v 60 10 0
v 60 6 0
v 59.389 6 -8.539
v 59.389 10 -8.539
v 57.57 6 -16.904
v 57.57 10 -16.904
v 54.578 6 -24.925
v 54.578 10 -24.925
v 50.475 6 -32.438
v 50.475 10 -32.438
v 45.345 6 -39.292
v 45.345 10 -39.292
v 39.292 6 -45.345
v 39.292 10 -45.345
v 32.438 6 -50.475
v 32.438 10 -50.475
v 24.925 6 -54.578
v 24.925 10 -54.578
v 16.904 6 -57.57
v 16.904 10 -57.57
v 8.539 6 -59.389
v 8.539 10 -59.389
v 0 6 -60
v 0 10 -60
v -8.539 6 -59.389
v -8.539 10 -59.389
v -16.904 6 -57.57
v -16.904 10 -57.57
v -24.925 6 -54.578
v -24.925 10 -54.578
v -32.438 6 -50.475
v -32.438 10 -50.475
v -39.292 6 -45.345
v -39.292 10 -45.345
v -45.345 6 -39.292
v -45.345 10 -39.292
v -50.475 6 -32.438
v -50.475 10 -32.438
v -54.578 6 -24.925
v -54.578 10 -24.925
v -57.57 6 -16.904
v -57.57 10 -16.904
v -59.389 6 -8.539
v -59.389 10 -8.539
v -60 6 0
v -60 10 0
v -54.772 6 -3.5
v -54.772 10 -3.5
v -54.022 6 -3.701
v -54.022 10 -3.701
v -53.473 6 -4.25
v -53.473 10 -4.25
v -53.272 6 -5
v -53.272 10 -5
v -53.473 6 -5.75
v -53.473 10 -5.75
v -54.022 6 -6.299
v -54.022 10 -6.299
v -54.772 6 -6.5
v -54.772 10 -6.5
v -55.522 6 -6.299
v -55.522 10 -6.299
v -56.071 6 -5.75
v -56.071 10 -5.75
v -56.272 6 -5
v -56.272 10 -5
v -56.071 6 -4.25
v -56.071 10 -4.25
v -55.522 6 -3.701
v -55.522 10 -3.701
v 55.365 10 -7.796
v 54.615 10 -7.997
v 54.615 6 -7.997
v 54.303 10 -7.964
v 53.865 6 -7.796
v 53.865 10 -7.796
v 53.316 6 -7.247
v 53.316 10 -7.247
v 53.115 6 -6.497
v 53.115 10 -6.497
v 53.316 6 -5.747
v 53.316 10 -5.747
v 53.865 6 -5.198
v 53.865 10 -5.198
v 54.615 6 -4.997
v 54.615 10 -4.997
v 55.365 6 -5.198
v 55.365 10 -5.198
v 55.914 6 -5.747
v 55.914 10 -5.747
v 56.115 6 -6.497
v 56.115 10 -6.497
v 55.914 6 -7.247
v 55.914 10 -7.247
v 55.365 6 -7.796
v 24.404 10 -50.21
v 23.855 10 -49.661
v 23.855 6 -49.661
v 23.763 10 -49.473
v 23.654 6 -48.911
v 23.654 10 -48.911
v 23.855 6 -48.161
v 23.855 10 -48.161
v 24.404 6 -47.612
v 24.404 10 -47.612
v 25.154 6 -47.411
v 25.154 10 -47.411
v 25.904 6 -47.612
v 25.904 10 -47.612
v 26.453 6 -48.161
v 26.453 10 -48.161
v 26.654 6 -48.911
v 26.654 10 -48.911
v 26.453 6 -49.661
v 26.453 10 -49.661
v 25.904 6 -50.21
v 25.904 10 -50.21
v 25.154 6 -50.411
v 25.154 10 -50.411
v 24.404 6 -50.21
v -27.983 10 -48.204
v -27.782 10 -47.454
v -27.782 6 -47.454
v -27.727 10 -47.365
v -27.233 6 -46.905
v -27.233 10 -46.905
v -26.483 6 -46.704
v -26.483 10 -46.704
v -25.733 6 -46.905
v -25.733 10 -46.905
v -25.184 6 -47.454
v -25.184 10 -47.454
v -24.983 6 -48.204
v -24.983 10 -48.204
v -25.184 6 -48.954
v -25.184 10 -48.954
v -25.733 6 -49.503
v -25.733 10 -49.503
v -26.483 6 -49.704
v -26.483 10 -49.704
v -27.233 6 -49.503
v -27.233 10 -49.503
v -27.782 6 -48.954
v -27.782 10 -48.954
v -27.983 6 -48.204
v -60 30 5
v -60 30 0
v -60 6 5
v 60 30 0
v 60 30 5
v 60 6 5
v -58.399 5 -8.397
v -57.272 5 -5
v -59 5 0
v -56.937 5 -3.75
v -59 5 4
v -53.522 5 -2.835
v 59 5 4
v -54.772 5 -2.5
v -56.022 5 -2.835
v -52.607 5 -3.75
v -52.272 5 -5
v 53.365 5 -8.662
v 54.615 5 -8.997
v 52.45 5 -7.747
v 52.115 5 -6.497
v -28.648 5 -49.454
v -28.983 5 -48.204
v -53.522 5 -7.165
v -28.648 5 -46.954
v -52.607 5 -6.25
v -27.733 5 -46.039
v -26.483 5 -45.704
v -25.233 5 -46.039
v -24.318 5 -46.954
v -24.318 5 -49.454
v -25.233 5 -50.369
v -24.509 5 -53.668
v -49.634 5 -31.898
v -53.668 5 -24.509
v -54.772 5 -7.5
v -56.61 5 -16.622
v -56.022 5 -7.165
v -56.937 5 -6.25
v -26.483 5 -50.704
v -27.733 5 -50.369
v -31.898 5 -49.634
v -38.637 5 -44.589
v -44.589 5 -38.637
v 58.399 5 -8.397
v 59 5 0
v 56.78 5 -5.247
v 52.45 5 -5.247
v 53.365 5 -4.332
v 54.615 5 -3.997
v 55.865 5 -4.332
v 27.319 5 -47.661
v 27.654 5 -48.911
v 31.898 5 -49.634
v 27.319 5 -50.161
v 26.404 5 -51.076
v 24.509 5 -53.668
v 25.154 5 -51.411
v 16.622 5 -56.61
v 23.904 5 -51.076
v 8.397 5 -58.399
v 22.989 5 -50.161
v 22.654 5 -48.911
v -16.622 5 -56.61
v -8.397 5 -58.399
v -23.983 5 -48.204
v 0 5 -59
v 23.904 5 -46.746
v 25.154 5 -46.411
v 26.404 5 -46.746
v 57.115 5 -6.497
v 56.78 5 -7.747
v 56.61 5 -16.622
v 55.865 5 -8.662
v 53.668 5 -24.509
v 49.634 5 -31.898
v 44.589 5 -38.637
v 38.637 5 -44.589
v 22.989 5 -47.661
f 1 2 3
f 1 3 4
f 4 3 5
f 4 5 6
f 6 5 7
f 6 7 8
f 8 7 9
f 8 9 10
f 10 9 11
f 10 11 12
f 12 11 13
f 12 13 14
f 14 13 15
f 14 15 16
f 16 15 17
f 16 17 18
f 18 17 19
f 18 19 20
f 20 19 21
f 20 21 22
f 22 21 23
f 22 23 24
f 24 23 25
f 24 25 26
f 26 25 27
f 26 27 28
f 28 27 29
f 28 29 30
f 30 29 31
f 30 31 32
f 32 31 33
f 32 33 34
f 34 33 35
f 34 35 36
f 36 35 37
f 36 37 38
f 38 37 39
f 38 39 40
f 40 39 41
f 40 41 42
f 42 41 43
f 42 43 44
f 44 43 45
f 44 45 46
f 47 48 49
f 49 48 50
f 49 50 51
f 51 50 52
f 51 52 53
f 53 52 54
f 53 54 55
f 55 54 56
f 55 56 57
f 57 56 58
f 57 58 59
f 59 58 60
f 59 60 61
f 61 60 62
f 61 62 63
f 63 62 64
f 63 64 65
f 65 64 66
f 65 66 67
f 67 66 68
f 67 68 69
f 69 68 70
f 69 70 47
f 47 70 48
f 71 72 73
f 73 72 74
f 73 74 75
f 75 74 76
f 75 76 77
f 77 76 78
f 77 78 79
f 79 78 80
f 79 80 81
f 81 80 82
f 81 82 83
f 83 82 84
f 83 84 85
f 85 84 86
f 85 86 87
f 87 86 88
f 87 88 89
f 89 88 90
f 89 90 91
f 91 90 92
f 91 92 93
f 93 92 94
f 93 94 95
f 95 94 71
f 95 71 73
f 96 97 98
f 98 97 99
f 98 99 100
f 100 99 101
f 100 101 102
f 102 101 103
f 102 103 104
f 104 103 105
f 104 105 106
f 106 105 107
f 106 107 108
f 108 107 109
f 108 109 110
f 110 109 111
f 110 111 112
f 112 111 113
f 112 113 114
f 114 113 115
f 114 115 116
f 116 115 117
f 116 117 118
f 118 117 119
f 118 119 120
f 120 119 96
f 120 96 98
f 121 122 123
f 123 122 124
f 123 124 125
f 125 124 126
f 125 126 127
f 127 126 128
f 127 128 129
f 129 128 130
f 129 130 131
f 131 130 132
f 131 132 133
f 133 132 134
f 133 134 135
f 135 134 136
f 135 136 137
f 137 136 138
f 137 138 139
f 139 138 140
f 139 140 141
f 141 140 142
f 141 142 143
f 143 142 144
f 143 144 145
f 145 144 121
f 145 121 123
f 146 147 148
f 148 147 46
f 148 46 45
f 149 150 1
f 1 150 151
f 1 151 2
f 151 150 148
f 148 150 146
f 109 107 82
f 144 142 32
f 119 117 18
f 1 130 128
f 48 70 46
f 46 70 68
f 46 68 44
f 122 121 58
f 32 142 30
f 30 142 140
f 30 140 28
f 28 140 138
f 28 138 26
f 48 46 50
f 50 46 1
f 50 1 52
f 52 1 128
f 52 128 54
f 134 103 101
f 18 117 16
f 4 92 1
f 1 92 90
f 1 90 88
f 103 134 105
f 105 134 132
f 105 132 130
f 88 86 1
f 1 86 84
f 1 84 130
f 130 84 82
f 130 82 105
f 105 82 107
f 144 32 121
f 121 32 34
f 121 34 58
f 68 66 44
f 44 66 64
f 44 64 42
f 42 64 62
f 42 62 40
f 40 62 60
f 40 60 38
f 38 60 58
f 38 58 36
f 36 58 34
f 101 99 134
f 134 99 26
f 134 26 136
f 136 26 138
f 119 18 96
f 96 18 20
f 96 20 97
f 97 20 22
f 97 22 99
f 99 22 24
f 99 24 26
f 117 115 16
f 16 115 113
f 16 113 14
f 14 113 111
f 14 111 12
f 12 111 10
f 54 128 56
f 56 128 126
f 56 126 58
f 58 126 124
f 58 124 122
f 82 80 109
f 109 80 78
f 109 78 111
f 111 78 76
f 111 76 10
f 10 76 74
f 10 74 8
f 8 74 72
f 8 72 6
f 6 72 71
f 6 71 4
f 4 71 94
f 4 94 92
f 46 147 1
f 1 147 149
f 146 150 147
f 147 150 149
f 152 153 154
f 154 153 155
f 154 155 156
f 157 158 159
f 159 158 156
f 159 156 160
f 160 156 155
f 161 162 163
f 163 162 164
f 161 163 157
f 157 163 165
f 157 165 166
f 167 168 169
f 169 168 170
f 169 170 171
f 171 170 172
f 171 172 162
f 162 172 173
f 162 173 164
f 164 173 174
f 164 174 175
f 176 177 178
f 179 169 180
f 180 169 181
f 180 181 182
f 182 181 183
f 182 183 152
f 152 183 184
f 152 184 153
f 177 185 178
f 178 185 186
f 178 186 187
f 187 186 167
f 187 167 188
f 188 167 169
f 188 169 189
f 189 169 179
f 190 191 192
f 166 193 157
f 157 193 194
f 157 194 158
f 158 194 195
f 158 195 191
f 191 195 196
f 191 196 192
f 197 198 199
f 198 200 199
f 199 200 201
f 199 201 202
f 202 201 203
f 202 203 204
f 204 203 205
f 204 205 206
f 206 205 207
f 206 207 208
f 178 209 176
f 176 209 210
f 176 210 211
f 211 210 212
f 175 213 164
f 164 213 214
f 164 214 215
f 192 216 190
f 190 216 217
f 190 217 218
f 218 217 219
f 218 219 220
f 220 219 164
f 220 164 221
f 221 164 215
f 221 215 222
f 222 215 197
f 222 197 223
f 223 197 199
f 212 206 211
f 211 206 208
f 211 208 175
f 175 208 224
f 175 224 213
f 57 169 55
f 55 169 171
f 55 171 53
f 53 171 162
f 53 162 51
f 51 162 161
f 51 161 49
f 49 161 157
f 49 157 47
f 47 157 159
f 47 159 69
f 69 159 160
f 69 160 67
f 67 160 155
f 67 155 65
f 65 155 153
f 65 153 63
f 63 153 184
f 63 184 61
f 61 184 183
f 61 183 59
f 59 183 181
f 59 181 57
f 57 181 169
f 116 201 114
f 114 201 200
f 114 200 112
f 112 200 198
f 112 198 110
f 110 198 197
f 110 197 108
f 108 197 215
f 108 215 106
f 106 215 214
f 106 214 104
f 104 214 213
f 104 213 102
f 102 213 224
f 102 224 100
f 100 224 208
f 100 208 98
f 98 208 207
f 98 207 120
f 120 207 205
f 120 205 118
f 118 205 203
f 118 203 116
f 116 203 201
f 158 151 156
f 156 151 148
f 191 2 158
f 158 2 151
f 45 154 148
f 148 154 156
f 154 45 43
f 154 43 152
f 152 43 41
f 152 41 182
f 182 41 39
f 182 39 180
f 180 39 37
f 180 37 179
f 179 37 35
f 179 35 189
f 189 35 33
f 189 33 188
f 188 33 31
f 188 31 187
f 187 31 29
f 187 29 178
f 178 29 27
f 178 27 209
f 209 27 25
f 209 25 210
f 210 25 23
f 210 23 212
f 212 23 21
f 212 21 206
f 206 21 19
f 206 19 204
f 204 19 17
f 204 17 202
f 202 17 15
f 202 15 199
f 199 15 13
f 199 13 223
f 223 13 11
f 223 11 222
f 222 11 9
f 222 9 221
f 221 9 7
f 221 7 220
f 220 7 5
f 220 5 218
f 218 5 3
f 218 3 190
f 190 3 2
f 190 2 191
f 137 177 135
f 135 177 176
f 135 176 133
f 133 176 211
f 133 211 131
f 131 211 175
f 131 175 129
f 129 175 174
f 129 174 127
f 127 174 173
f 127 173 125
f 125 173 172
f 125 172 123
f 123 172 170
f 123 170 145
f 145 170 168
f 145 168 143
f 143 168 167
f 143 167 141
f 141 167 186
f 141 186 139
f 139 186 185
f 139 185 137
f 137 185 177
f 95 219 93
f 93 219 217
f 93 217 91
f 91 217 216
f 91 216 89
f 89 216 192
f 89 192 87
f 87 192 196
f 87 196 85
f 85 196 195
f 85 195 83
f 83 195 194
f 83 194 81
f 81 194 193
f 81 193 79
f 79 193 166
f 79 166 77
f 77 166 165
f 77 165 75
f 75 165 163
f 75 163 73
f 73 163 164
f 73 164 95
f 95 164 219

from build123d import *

# Parameters (mm, degrees)
BOSS_EXTRUDE1_DEPTH     = 5
SKETCH2_R               = 1.5
CUT_EXTRUDE1_DEPTH      = 5
CIRPATTERN1_COUNT       = 4
CIRPATTERN1_ANGLE       = 168
SKETCH9_W               = 120
SKETCH9_H               = 25
BOSS_EXTRUDE5_DEPTH     = 5
MIRROR3_COPY_1_SKETCH_R = 1.5
MIRROR3_COPY_1_DEPTH    = 5
MIRROR3_COPY_2_SKETCH_R = 1.5
MIRROR3_COPY_2_DEPTH    = 5
MIRROR3_COPY_3_SKETCH_R = 1.5
MIRROR3_COPY_3_DEPTH    = 5
SKETCH11_W              = 83.519878
SKETCH11_H              = 28.939674
CUT_EXTRUDE2_DEPTH      = 150
CHAMFER1_SIZE           = 1


with BuildPart() as part:
    # Sketch1 → Boss-Extrude1 (new body)
    with BuildSketch(Plane(origin=(0, 0, 0), x_dir=(1, 0, 0), z_dir=(0, 1, 0))):
        with BuildLine():
            Line((-60, 0), (-25.75, 0))
            Line((-25.75, 0), (25.75, 0))
            Line((25.75, 0), (60, 0))
            ThreePointArc((60, 0), (0, 60), (-60, 0))
        make_face()
    boss_extrude1 = extrude(amount=BOSS_EXTRUDE1_DEPTH)

    # Sketch2 → Cut-Extrude1 (cut)
    with BuildSketch(Plane(origin=(0, 5, 0), x_dir=(1, 0, 0), z_dir=(0, 1, 0))):
        with Locations((-54.772256, 5)):
            Circle(SKETCH2_R)
    cut_extrude1 = extrude(amount=-CUT_EXTRUDE1_DEPTH, mode=Mode.SUBTRACT)

    # CirPattern1: Cut-Extrude1 ×4 about axis
    cirpattern1_axis = Axis((0, 0, 0), (0, -1, 0))
    for i in range(1, CIRPATTERN1_COUNT):
        add(cut_extrude1.rotate(cirpattern1_axis, i * CIRPATTERN1_ANGLE / (CIRPATTERN1_COUNT - 1)), mode=Mode.SUBTRACT)

    # Sketch9 → Boss-Extrude5 (add)
    with BuildSketch(Plane.XY):
        with Locations((0, -7.5)):
            Rectangle(SKETCH9_W, SKETCH9_H)
    boss_extrude5 = extrude(amount=BOSS_EXTRUDE5_DEPTH)

    # Mirror3: Boss-Extrude1, Cut-Extrude1, Boss-Extrude5 across plane
    add(boss_extrude1.mirror(Plane.ZX.offset(5)))
    add(cut_extrude1.mirror(Plane.ZX.offset(5)), mode=Mode.SUBTRACT)
    add(boss_extrude5.mirror(Plane.ZX.offset(5)))

    # Mirror3 copy 1 sketch → Mirror3 copy 1 (cut)
    with BuildSketch(Plane(origin=(0, 5, 0), x_dir=(0.559193, 0, 0.829038), z_dir=(0, -1, 0))):
        with Locations((-54.772256, -5)):
            Circle(MIRROR3_COPY_1_SKETCH_R)
    extrude(amount=-MIRROR3_COPY_1_DEPTH, mode=Mode.SUBTRACT)

    # Mirror3 copy 2 sketch → Mirror3 copy 2 (cut)
    with BuildSketch(Plane(origin=(0, 5, 0), x_dir=(-0.374607, 0, 0.927184), z_dir=(0, -1, 0))):
        with Locations((-54.772256, -5)):
            Circle(MIRROR3_COPY_2_SKETCH_R)
    extrude(amount=-MIRROR3_COPY_2_DEPTH, mode=Mode.SUBTRACT)

    # Mirror3 copy 3 sketch → Mirror3 copy 3 (cut)
    with BuildSketch(Plane(origin=(0, 5, 0), x_dir=(-0.978148, 0, 0.207912), z_dir=(0, -1, 0))):
        with Locations((-54.772256, -5)):
            Circle(MIRROR3_COPY_3_SKETCH_R)
    extrude(amount=-MIRROR3_COPY_3_DEPTH, mode=Mode.SUBTRACT)

    # Sketch11 → Cut-Extrude2 (cut)
    with BuildSketch(Plane.ZY.offset(60)):
        with Locations((-36.759939, -9.469837)):
            Rectangle(SKETCH11_W, SKETCH11_H)
    extrude(amount=-CUT_EXTRUDE2_DEPTH, mode=Mode.SUBTRACT)

    # Chamfer1
    chamfer1_edges = [part.edges().sort_by_distance(p)[0] for p in [
        (0, 5, 5),
        (56.08213, 5, -6.808922),
        (-27.321858, 5, -49.447779),
        (60, 5, 2.5),
        (0, 5, -60),
        (25.715877, 5, -50.301694),
        (-56.272256, 5, -5),
        (-60, 5, 2.5),
    ]]
    chamfer(chamfer1_edges, length=CHAMFER1_SIZE)


solid = part.part
